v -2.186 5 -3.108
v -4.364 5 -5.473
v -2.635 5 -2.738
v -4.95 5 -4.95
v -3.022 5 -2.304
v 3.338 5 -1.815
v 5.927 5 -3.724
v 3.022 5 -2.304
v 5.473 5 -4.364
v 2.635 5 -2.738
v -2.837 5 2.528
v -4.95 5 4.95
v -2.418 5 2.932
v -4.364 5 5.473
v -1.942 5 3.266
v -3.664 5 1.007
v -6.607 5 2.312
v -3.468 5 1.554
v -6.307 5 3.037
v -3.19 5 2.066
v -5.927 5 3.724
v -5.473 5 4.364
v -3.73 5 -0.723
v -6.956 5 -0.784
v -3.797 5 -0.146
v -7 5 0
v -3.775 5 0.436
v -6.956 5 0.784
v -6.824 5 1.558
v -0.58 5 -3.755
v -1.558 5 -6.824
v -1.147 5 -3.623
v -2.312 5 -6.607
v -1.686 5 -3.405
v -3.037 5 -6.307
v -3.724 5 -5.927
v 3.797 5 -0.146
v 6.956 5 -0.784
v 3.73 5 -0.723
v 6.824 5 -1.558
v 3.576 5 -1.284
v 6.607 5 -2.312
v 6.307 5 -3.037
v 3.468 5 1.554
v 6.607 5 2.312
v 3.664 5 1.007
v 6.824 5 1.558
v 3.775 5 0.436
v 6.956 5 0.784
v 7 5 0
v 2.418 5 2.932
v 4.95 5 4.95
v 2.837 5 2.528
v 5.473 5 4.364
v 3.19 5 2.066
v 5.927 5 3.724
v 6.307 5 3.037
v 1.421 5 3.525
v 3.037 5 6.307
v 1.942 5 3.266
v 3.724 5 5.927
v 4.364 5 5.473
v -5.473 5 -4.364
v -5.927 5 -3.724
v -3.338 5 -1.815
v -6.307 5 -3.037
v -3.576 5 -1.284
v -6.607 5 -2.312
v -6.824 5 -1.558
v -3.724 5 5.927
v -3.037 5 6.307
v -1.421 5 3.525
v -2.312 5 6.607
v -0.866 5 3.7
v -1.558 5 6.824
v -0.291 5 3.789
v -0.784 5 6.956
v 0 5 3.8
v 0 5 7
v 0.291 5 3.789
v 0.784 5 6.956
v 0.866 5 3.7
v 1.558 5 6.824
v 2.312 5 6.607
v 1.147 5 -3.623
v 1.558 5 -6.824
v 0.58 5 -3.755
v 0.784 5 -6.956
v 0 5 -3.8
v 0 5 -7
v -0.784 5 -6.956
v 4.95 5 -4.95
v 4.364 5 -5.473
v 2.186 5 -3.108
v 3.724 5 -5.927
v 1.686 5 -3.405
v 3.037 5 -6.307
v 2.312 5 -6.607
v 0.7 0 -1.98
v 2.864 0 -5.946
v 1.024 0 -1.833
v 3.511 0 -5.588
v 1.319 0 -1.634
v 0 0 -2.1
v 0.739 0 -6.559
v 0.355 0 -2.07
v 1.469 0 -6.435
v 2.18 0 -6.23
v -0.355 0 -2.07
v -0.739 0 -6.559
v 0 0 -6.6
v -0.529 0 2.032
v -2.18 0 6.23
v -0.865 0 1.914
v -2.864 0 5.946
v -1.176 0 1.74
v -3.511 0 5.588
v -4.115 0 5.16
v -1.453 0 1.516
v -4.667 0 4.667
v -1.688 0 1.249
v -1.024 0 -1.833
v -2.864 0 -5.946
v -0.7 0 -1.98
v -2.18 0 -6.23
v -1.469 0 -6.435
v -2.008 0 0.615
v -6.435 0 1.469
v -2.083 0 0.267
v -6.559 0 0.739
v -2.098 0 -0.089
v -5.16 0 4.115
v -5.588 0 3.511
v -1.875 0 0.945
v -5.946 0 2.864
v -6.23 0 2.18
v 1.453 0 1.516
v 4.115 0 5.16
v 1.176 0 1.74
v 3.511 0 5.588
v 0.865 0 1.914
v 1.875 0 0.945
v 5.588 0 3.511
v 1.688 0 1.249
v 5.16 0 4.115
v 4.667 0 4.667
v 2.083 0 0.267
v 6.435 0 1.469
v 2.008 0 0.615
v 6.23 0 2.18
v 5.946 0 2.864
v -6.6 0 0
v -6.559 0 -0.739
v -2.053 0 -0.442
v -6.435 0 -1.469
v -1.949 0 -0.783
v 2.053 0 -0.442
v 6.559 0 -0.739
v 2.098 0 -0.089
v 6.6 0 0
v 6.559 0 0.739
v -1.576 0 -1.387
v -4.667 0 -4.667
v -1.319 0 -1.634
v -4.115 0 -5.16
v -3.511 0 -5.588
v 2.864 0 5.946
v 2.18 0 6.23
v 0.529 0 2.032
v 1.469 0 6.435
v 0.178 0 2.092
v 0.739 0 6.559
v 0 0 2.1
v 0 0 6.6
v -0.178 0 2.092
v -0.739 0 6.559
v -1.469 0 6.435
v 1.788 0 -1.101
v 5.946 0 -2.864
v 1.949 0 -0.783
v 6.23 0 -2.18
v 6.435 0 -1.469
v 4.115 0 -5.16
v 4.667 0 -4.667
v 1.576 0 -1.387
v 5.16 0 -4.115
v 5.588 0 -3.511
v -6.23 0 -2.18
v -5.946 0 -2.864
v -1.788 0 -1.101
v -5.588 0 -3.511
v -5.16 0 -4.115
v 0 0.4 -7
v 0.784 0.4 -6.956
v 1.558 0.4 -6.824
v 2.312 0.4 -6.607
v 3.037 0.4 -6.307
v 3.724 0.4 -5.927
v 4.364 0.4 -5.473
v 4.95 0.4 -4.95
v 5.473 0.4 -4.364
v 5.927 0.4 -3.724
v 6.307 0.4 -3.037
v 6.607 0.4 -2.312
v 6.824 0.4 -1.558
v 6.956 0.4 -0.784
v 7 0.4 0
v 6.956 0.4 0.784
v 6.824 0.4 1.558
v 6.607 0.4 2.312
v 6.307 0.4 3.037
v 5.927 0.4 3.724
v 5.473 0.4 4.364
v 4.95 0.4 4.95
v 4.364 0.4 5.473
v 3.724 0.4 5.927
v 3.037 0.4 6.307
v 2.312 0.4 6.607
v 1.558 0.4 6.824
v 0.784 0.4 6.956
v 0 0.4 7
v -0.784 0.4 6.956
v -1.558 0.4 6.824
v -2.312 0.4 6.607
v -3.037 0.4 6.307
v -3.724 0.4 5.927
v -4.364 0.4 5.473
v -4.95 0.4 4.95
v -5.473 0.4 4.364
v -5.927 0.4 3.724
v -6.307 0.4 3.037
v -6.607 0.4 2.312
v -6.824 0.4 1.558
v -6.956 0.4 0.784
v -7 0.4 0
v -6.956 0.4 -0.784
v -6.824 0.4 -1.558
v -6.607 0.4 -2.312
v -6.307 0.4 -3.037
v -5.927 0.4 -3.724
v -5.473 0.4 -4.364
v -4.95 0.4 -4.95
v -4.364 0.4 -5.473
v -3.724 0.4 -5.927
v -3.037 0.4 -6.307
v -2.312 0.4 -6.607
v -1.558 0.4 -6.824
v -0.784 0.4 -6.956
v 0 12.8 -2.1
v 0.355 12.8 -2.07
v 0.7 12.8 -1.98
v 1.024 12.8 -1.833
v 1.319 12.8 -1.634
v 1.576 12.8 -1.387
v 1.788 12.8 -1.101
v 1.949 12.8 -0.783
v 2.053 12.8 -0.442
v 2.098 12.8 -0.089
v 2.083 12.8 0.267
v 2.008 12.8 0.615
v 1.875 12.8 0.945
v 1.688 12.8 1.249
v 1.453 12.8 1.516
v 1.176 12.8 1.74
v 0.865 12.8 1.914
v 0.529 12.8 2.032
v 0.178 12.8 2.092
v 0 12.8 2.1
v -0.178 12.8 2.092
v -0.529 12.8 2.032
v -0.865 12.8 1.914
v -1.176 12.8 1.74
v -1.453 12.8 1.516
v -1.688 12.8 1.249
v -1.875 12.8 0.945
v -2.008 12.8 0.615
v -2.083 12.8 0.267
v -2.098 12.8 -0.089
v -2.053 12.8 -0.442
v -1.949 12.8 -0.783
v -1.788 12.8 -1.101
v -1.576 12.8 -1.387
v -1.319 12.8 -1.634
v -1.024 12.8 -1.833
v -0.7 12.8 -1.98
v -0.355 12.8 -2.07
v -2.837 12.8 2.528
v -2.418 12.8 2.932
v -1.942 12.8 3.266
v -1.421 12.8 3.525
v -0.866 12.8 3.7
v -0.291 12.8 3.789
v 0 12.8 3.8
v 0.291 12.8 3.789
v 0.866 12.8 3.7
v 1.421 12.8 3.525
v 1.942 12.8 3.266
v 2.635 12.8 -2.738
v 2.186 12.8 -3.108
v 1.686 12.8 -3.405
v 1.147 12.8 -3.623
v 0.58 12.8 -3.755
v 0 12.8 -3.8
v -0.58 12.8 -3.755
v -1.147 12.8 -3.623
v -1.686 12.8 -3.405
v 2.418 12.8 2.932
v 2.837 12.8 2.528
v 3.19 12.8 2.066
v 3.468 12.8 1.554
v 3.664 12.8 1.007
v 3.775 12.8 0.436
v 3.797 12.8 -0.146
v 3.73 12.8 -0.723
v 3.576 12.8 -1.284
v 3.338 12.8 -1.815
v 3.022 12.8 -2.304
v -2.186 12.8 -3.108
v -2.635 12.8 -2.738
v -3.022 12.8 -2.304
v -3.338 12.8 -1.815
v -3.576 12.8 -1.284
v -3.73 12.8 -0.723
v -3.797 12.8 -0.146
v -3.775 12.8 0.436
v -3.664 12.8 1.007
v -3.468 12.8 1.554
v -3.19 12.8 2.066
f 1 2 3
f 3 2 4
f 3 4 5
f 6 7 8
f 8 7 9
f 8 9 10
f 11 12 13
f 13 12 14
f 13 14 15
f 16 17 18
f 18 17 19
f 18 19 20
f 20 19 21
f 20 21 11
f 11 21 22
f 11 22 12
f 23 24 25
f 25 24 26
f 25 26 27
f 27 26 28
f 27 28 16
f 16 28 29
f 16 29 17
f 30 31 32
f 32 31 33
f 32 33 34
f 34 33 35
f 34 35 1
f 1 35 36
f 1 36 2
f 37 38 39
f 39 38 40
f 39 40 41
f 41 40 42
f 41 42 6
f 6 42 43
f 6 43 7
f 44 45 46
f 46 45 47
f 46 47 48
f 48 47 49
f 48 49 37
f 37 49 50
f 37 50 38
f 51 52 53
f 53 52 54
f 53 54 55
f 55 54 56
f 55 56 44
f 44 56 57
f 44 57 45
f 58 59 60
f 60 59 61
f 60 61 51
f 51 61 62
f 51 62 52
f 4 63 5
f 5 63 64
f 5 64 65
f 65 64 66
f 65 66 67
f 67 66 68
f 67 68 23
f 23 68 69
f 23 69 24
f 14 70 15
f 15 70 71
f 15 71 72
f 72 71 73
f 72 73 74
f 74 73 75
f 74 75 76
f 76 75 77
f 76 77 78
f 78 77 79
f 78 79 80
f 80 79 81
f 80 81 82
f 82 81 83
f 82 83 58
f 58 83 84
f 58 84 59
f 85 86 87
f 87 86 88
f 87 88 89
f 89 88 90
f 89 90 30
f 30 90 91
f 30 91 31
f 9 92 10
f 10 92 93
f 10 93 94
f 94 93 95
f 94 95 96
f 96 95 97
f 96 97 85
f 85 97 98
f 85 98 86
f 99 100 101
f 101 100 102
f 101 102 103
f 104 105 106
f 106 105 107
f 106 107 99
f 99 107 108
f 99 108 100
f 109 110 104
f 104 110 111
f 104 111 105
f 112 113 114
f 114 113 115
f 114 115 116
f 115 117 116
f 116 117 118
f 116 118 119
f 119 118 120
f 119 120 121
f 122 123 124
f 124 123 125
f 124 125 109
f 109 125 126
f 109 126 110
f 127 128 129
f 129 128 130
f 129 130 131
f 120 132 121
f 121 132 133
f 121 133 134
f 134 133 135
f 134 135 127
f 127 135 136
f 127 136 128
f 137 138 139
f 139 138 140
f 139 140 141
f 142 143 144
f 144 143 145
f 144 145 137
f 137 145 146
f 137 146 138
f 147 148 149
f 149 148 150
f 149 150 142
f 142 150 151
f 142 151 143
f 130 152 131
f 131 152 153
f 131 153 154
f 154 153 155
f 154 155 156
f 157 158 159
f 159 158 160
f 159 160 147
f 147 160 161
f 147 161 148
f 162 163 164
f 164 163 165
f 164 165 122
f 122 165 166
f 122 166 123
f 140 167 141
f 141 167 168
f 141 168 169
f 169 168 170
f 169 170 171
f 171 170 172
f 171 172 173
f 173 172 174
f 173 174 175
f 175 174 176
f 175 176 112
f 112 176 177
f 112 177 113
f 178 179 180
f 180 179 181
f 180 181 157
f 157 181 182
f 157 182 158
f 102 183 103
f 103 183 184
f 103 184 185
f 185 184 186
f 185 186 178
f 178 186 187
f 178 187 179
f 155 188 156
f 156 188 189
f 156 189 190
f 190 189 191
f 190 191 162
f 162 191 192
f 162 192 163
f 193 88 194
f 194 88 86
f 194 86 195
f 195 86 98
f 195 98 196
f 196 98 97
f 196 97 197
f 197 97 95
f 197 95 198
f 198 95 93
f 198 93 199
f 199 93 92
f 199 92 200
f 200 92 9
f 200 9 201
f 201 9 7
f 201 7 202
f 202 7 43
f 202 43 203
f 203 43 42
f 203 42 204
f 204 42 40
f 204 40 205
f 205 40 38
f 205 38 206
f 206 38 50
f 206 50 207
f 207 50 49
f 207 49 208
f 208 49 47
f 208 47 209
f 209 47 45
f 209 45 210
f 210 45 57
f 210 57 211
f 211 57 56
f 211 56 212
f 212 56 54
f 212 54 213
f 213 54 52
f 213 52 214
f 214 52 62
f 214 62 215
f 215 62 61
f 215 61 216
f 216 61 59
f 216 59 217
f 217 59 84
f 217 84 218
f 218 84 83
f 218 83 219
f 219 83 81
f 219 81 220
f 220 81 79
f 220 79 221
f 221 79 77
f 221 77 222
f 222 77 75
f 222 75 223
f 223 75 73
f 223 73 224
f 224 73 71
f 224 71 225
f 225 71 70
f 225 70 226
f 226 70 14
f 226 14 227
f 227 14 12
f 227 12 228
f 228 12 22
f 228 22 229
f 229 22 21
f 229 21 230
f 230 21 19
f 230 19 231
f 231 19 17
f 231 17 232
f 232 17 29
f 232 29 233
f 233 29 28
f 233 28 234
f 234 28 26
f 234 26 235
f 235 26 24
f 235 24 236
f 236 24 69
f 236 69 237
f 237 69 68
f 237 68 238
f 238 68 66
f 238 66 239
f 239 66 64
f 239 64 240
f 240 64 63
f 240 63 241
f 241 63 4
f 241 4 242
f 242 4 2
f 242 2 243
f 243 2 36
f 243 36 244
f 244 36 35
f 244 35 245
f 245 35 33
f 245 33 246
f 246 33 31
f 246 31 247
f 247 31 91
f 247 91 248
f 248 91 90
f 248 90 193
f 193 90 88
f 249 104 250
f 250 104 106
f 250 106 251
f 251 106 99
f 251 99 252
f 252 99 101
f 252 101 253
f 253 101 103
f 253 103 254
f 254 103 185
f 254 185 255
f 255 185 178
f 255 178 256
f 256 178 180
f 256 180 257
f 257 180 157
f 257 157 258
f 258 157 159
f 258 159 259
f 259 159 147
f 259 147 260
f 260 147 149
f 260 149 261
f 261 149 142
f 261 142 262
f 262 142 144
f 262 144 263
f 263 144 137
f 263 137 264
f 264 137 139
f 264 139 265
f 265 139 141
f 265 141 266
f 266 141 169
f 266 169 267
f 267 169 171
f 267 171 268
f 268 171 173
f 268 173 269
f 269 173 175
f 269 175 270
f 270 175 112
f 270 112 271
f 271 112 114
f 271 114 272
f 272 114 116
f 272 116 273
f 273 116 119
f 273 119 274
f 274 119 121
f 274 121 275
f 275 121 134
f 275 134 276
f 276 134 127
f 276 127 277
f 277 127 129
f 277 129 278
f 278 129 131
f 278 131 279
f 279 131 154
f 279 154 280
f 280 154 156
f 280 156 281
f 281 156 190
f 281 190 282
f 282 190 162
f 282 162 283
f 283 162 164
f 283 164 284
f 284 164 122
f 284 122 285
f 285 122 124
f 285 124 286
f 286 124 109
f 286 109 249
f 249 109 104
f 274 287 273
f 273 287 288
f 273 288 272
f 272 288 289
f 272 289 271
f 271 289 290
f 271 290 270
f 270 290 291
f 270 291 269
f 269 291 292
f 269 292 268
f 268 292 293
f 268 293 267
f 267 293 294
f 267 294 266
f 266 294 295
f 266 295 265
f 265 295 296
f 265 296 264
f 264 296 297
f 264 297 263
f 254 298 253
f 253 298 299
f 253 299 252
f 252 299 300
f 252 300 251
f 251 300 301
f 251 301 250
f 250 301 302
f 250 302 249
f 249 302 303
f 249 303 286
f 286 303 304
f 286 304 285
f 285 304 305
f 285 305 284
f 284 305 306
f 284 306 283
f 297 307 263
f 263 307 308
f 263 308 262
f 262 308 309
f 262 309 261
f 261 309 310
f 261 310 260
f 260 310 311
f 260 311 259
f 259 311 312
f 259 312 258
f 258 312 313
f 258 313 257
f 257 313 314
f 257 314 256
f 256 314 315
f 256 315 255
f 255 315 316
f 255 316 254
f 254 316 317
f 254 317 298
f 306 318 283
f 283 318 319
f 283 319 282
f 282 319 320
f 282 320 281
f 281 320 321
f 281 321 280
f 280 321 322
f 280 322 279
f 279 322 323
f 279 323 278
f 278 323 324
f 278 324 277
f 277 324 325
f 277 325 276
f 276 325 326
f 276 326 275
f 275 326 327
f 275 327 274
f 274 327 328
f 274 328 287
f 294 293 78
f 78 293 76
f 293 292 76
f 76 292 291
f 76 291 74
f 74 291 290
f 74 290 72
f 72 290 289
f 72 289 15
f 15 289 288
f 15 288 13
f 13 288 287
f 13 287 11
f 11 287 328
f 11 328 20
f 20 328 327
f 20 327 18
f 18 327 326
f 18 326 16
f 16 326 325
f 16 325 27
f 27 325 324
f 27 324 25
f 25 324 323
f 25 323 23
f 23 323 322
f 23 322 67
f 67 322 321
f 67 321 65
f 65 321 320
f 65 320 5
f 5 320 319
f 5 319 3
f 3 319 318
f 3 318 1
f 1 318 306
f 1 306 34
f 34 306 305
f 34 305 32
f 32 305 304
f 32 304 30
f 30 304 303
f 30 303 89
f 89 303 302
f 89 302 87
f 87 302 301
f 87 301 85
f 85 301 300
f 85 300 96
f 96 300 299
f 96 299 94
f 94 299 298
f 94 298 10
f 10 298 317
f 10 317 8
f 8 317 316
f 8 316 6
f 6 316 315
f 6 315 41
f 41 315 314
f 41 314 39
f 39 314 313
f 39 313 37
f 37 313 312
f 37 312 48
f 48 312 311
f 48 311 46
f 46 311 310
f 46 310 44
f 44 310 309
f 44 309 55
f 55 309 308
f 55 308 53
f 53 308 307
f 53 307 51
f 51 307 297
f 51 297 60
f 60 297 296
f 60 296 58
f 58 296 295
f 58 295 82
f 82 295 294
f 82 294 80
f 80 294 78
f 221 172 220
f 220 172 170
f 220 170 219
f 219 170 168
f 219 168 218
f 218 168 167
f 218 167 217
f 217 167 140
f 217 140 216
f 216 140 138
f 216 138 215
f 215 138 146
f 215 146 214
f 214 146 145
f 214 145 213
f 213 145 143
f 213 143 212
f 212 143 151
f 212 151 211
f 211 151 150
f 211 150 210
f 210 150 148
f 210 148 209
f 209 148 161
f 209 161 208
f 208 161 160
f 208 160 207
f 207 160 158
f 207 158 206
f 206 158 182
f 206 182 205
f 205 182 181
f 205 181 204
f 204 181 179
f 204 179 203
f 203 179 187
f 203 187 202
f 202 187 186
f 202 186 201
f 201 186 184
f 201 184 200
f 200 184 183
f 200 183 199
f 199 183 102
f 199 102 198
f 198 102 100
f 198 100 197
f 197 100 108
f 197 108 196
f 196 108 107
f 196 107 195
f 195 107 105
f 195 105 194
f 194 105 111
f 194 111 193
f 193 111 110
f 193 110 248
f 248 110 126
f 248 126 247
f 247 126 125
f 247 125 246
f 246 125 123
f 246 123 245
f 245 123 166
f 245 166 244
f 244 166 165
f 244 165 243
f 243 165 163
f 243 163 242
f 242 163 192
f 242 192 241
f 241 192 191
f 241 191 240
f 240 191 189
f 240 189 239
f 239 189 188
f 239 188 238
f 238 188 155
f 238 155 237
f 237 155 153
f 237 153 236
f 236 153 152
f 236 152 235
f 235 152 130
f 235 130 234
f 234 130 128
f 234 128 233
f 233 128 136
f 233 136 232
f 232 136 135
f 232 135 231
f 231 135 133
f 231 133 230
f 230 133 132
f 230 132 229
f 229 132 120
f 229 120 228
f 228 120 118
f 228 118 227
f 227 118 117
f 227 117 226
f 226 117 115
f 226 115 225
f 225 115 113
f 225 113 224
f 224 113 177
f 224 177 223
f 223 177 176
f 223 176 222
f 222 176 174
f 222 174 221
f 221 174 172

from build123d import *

# Parameters (mm, degrees)
SKETCH1_R           = 7
SKETCH1_R_2         = 2.1
BOSS_EXTRUDE1_DEPTH = 5
SKETCH2_R           = 3.8
SKETCH2_R_2         = 2.1
BOSS_EXTRUDE2_DEPTH = 7.8
CHAMFER1_SIZE       = 0.4
CHAMFER1_SIZE2      = 0.399999869


with BuildPart() as part:
    # Sketch1 → Boss-Extrude1 (new body)
    with BuildSketch(Plane(origin=(0, 0, 0), x_dir=(1, 0, 0), z_dir=(0, 1, 0))):
        with Locations(Location((0, 0, 0), (0, 0, 270))):
            Circle(SKETCH1_R)
        with Locations(Location((0, 0, 0), (0, 0, 270))):
            Circle(SKETCH1_R_2, mode=Mode.SUBTRACT)
    extrude(amount=BOSS_EXTRUDE1_DEPTH)

    # Sketch2 → Boss-Extrude2 (add)
    with BuildSketch(Plane(origin=(0, 5, 0), x_dir=(1, 0, 0), z_dir=(0, 1, 0))):
        with Locations(Location((0, 0, 0), (0, 0, 270))):
            Circle(SKETCH2_R)
        with Locations(Location((0, 0, 0), (0, 0, 270))):
            Circle(SKETCH2_R_2, mode=Mode.SUBTRACT)
    extrude(amount=BOSS_EXTRUDE2_DEPTH)

    # Chamfer1
    chamfer1_edges = [part.edges().sort_by_distance(p)[0] for p in [
        (0, 0, -7),
    ]]
    chamfer1_side = [part.faces().sort_by_distance(p)[0] for p in [
        (0, 2.5, -7),
    ]]
    chamfer(chamfer1_edges, length=CHAMFER1_SIZE, length2=CHAMFER1_SIZE2, reference=chamfer1_side[0])


solid = part.part
